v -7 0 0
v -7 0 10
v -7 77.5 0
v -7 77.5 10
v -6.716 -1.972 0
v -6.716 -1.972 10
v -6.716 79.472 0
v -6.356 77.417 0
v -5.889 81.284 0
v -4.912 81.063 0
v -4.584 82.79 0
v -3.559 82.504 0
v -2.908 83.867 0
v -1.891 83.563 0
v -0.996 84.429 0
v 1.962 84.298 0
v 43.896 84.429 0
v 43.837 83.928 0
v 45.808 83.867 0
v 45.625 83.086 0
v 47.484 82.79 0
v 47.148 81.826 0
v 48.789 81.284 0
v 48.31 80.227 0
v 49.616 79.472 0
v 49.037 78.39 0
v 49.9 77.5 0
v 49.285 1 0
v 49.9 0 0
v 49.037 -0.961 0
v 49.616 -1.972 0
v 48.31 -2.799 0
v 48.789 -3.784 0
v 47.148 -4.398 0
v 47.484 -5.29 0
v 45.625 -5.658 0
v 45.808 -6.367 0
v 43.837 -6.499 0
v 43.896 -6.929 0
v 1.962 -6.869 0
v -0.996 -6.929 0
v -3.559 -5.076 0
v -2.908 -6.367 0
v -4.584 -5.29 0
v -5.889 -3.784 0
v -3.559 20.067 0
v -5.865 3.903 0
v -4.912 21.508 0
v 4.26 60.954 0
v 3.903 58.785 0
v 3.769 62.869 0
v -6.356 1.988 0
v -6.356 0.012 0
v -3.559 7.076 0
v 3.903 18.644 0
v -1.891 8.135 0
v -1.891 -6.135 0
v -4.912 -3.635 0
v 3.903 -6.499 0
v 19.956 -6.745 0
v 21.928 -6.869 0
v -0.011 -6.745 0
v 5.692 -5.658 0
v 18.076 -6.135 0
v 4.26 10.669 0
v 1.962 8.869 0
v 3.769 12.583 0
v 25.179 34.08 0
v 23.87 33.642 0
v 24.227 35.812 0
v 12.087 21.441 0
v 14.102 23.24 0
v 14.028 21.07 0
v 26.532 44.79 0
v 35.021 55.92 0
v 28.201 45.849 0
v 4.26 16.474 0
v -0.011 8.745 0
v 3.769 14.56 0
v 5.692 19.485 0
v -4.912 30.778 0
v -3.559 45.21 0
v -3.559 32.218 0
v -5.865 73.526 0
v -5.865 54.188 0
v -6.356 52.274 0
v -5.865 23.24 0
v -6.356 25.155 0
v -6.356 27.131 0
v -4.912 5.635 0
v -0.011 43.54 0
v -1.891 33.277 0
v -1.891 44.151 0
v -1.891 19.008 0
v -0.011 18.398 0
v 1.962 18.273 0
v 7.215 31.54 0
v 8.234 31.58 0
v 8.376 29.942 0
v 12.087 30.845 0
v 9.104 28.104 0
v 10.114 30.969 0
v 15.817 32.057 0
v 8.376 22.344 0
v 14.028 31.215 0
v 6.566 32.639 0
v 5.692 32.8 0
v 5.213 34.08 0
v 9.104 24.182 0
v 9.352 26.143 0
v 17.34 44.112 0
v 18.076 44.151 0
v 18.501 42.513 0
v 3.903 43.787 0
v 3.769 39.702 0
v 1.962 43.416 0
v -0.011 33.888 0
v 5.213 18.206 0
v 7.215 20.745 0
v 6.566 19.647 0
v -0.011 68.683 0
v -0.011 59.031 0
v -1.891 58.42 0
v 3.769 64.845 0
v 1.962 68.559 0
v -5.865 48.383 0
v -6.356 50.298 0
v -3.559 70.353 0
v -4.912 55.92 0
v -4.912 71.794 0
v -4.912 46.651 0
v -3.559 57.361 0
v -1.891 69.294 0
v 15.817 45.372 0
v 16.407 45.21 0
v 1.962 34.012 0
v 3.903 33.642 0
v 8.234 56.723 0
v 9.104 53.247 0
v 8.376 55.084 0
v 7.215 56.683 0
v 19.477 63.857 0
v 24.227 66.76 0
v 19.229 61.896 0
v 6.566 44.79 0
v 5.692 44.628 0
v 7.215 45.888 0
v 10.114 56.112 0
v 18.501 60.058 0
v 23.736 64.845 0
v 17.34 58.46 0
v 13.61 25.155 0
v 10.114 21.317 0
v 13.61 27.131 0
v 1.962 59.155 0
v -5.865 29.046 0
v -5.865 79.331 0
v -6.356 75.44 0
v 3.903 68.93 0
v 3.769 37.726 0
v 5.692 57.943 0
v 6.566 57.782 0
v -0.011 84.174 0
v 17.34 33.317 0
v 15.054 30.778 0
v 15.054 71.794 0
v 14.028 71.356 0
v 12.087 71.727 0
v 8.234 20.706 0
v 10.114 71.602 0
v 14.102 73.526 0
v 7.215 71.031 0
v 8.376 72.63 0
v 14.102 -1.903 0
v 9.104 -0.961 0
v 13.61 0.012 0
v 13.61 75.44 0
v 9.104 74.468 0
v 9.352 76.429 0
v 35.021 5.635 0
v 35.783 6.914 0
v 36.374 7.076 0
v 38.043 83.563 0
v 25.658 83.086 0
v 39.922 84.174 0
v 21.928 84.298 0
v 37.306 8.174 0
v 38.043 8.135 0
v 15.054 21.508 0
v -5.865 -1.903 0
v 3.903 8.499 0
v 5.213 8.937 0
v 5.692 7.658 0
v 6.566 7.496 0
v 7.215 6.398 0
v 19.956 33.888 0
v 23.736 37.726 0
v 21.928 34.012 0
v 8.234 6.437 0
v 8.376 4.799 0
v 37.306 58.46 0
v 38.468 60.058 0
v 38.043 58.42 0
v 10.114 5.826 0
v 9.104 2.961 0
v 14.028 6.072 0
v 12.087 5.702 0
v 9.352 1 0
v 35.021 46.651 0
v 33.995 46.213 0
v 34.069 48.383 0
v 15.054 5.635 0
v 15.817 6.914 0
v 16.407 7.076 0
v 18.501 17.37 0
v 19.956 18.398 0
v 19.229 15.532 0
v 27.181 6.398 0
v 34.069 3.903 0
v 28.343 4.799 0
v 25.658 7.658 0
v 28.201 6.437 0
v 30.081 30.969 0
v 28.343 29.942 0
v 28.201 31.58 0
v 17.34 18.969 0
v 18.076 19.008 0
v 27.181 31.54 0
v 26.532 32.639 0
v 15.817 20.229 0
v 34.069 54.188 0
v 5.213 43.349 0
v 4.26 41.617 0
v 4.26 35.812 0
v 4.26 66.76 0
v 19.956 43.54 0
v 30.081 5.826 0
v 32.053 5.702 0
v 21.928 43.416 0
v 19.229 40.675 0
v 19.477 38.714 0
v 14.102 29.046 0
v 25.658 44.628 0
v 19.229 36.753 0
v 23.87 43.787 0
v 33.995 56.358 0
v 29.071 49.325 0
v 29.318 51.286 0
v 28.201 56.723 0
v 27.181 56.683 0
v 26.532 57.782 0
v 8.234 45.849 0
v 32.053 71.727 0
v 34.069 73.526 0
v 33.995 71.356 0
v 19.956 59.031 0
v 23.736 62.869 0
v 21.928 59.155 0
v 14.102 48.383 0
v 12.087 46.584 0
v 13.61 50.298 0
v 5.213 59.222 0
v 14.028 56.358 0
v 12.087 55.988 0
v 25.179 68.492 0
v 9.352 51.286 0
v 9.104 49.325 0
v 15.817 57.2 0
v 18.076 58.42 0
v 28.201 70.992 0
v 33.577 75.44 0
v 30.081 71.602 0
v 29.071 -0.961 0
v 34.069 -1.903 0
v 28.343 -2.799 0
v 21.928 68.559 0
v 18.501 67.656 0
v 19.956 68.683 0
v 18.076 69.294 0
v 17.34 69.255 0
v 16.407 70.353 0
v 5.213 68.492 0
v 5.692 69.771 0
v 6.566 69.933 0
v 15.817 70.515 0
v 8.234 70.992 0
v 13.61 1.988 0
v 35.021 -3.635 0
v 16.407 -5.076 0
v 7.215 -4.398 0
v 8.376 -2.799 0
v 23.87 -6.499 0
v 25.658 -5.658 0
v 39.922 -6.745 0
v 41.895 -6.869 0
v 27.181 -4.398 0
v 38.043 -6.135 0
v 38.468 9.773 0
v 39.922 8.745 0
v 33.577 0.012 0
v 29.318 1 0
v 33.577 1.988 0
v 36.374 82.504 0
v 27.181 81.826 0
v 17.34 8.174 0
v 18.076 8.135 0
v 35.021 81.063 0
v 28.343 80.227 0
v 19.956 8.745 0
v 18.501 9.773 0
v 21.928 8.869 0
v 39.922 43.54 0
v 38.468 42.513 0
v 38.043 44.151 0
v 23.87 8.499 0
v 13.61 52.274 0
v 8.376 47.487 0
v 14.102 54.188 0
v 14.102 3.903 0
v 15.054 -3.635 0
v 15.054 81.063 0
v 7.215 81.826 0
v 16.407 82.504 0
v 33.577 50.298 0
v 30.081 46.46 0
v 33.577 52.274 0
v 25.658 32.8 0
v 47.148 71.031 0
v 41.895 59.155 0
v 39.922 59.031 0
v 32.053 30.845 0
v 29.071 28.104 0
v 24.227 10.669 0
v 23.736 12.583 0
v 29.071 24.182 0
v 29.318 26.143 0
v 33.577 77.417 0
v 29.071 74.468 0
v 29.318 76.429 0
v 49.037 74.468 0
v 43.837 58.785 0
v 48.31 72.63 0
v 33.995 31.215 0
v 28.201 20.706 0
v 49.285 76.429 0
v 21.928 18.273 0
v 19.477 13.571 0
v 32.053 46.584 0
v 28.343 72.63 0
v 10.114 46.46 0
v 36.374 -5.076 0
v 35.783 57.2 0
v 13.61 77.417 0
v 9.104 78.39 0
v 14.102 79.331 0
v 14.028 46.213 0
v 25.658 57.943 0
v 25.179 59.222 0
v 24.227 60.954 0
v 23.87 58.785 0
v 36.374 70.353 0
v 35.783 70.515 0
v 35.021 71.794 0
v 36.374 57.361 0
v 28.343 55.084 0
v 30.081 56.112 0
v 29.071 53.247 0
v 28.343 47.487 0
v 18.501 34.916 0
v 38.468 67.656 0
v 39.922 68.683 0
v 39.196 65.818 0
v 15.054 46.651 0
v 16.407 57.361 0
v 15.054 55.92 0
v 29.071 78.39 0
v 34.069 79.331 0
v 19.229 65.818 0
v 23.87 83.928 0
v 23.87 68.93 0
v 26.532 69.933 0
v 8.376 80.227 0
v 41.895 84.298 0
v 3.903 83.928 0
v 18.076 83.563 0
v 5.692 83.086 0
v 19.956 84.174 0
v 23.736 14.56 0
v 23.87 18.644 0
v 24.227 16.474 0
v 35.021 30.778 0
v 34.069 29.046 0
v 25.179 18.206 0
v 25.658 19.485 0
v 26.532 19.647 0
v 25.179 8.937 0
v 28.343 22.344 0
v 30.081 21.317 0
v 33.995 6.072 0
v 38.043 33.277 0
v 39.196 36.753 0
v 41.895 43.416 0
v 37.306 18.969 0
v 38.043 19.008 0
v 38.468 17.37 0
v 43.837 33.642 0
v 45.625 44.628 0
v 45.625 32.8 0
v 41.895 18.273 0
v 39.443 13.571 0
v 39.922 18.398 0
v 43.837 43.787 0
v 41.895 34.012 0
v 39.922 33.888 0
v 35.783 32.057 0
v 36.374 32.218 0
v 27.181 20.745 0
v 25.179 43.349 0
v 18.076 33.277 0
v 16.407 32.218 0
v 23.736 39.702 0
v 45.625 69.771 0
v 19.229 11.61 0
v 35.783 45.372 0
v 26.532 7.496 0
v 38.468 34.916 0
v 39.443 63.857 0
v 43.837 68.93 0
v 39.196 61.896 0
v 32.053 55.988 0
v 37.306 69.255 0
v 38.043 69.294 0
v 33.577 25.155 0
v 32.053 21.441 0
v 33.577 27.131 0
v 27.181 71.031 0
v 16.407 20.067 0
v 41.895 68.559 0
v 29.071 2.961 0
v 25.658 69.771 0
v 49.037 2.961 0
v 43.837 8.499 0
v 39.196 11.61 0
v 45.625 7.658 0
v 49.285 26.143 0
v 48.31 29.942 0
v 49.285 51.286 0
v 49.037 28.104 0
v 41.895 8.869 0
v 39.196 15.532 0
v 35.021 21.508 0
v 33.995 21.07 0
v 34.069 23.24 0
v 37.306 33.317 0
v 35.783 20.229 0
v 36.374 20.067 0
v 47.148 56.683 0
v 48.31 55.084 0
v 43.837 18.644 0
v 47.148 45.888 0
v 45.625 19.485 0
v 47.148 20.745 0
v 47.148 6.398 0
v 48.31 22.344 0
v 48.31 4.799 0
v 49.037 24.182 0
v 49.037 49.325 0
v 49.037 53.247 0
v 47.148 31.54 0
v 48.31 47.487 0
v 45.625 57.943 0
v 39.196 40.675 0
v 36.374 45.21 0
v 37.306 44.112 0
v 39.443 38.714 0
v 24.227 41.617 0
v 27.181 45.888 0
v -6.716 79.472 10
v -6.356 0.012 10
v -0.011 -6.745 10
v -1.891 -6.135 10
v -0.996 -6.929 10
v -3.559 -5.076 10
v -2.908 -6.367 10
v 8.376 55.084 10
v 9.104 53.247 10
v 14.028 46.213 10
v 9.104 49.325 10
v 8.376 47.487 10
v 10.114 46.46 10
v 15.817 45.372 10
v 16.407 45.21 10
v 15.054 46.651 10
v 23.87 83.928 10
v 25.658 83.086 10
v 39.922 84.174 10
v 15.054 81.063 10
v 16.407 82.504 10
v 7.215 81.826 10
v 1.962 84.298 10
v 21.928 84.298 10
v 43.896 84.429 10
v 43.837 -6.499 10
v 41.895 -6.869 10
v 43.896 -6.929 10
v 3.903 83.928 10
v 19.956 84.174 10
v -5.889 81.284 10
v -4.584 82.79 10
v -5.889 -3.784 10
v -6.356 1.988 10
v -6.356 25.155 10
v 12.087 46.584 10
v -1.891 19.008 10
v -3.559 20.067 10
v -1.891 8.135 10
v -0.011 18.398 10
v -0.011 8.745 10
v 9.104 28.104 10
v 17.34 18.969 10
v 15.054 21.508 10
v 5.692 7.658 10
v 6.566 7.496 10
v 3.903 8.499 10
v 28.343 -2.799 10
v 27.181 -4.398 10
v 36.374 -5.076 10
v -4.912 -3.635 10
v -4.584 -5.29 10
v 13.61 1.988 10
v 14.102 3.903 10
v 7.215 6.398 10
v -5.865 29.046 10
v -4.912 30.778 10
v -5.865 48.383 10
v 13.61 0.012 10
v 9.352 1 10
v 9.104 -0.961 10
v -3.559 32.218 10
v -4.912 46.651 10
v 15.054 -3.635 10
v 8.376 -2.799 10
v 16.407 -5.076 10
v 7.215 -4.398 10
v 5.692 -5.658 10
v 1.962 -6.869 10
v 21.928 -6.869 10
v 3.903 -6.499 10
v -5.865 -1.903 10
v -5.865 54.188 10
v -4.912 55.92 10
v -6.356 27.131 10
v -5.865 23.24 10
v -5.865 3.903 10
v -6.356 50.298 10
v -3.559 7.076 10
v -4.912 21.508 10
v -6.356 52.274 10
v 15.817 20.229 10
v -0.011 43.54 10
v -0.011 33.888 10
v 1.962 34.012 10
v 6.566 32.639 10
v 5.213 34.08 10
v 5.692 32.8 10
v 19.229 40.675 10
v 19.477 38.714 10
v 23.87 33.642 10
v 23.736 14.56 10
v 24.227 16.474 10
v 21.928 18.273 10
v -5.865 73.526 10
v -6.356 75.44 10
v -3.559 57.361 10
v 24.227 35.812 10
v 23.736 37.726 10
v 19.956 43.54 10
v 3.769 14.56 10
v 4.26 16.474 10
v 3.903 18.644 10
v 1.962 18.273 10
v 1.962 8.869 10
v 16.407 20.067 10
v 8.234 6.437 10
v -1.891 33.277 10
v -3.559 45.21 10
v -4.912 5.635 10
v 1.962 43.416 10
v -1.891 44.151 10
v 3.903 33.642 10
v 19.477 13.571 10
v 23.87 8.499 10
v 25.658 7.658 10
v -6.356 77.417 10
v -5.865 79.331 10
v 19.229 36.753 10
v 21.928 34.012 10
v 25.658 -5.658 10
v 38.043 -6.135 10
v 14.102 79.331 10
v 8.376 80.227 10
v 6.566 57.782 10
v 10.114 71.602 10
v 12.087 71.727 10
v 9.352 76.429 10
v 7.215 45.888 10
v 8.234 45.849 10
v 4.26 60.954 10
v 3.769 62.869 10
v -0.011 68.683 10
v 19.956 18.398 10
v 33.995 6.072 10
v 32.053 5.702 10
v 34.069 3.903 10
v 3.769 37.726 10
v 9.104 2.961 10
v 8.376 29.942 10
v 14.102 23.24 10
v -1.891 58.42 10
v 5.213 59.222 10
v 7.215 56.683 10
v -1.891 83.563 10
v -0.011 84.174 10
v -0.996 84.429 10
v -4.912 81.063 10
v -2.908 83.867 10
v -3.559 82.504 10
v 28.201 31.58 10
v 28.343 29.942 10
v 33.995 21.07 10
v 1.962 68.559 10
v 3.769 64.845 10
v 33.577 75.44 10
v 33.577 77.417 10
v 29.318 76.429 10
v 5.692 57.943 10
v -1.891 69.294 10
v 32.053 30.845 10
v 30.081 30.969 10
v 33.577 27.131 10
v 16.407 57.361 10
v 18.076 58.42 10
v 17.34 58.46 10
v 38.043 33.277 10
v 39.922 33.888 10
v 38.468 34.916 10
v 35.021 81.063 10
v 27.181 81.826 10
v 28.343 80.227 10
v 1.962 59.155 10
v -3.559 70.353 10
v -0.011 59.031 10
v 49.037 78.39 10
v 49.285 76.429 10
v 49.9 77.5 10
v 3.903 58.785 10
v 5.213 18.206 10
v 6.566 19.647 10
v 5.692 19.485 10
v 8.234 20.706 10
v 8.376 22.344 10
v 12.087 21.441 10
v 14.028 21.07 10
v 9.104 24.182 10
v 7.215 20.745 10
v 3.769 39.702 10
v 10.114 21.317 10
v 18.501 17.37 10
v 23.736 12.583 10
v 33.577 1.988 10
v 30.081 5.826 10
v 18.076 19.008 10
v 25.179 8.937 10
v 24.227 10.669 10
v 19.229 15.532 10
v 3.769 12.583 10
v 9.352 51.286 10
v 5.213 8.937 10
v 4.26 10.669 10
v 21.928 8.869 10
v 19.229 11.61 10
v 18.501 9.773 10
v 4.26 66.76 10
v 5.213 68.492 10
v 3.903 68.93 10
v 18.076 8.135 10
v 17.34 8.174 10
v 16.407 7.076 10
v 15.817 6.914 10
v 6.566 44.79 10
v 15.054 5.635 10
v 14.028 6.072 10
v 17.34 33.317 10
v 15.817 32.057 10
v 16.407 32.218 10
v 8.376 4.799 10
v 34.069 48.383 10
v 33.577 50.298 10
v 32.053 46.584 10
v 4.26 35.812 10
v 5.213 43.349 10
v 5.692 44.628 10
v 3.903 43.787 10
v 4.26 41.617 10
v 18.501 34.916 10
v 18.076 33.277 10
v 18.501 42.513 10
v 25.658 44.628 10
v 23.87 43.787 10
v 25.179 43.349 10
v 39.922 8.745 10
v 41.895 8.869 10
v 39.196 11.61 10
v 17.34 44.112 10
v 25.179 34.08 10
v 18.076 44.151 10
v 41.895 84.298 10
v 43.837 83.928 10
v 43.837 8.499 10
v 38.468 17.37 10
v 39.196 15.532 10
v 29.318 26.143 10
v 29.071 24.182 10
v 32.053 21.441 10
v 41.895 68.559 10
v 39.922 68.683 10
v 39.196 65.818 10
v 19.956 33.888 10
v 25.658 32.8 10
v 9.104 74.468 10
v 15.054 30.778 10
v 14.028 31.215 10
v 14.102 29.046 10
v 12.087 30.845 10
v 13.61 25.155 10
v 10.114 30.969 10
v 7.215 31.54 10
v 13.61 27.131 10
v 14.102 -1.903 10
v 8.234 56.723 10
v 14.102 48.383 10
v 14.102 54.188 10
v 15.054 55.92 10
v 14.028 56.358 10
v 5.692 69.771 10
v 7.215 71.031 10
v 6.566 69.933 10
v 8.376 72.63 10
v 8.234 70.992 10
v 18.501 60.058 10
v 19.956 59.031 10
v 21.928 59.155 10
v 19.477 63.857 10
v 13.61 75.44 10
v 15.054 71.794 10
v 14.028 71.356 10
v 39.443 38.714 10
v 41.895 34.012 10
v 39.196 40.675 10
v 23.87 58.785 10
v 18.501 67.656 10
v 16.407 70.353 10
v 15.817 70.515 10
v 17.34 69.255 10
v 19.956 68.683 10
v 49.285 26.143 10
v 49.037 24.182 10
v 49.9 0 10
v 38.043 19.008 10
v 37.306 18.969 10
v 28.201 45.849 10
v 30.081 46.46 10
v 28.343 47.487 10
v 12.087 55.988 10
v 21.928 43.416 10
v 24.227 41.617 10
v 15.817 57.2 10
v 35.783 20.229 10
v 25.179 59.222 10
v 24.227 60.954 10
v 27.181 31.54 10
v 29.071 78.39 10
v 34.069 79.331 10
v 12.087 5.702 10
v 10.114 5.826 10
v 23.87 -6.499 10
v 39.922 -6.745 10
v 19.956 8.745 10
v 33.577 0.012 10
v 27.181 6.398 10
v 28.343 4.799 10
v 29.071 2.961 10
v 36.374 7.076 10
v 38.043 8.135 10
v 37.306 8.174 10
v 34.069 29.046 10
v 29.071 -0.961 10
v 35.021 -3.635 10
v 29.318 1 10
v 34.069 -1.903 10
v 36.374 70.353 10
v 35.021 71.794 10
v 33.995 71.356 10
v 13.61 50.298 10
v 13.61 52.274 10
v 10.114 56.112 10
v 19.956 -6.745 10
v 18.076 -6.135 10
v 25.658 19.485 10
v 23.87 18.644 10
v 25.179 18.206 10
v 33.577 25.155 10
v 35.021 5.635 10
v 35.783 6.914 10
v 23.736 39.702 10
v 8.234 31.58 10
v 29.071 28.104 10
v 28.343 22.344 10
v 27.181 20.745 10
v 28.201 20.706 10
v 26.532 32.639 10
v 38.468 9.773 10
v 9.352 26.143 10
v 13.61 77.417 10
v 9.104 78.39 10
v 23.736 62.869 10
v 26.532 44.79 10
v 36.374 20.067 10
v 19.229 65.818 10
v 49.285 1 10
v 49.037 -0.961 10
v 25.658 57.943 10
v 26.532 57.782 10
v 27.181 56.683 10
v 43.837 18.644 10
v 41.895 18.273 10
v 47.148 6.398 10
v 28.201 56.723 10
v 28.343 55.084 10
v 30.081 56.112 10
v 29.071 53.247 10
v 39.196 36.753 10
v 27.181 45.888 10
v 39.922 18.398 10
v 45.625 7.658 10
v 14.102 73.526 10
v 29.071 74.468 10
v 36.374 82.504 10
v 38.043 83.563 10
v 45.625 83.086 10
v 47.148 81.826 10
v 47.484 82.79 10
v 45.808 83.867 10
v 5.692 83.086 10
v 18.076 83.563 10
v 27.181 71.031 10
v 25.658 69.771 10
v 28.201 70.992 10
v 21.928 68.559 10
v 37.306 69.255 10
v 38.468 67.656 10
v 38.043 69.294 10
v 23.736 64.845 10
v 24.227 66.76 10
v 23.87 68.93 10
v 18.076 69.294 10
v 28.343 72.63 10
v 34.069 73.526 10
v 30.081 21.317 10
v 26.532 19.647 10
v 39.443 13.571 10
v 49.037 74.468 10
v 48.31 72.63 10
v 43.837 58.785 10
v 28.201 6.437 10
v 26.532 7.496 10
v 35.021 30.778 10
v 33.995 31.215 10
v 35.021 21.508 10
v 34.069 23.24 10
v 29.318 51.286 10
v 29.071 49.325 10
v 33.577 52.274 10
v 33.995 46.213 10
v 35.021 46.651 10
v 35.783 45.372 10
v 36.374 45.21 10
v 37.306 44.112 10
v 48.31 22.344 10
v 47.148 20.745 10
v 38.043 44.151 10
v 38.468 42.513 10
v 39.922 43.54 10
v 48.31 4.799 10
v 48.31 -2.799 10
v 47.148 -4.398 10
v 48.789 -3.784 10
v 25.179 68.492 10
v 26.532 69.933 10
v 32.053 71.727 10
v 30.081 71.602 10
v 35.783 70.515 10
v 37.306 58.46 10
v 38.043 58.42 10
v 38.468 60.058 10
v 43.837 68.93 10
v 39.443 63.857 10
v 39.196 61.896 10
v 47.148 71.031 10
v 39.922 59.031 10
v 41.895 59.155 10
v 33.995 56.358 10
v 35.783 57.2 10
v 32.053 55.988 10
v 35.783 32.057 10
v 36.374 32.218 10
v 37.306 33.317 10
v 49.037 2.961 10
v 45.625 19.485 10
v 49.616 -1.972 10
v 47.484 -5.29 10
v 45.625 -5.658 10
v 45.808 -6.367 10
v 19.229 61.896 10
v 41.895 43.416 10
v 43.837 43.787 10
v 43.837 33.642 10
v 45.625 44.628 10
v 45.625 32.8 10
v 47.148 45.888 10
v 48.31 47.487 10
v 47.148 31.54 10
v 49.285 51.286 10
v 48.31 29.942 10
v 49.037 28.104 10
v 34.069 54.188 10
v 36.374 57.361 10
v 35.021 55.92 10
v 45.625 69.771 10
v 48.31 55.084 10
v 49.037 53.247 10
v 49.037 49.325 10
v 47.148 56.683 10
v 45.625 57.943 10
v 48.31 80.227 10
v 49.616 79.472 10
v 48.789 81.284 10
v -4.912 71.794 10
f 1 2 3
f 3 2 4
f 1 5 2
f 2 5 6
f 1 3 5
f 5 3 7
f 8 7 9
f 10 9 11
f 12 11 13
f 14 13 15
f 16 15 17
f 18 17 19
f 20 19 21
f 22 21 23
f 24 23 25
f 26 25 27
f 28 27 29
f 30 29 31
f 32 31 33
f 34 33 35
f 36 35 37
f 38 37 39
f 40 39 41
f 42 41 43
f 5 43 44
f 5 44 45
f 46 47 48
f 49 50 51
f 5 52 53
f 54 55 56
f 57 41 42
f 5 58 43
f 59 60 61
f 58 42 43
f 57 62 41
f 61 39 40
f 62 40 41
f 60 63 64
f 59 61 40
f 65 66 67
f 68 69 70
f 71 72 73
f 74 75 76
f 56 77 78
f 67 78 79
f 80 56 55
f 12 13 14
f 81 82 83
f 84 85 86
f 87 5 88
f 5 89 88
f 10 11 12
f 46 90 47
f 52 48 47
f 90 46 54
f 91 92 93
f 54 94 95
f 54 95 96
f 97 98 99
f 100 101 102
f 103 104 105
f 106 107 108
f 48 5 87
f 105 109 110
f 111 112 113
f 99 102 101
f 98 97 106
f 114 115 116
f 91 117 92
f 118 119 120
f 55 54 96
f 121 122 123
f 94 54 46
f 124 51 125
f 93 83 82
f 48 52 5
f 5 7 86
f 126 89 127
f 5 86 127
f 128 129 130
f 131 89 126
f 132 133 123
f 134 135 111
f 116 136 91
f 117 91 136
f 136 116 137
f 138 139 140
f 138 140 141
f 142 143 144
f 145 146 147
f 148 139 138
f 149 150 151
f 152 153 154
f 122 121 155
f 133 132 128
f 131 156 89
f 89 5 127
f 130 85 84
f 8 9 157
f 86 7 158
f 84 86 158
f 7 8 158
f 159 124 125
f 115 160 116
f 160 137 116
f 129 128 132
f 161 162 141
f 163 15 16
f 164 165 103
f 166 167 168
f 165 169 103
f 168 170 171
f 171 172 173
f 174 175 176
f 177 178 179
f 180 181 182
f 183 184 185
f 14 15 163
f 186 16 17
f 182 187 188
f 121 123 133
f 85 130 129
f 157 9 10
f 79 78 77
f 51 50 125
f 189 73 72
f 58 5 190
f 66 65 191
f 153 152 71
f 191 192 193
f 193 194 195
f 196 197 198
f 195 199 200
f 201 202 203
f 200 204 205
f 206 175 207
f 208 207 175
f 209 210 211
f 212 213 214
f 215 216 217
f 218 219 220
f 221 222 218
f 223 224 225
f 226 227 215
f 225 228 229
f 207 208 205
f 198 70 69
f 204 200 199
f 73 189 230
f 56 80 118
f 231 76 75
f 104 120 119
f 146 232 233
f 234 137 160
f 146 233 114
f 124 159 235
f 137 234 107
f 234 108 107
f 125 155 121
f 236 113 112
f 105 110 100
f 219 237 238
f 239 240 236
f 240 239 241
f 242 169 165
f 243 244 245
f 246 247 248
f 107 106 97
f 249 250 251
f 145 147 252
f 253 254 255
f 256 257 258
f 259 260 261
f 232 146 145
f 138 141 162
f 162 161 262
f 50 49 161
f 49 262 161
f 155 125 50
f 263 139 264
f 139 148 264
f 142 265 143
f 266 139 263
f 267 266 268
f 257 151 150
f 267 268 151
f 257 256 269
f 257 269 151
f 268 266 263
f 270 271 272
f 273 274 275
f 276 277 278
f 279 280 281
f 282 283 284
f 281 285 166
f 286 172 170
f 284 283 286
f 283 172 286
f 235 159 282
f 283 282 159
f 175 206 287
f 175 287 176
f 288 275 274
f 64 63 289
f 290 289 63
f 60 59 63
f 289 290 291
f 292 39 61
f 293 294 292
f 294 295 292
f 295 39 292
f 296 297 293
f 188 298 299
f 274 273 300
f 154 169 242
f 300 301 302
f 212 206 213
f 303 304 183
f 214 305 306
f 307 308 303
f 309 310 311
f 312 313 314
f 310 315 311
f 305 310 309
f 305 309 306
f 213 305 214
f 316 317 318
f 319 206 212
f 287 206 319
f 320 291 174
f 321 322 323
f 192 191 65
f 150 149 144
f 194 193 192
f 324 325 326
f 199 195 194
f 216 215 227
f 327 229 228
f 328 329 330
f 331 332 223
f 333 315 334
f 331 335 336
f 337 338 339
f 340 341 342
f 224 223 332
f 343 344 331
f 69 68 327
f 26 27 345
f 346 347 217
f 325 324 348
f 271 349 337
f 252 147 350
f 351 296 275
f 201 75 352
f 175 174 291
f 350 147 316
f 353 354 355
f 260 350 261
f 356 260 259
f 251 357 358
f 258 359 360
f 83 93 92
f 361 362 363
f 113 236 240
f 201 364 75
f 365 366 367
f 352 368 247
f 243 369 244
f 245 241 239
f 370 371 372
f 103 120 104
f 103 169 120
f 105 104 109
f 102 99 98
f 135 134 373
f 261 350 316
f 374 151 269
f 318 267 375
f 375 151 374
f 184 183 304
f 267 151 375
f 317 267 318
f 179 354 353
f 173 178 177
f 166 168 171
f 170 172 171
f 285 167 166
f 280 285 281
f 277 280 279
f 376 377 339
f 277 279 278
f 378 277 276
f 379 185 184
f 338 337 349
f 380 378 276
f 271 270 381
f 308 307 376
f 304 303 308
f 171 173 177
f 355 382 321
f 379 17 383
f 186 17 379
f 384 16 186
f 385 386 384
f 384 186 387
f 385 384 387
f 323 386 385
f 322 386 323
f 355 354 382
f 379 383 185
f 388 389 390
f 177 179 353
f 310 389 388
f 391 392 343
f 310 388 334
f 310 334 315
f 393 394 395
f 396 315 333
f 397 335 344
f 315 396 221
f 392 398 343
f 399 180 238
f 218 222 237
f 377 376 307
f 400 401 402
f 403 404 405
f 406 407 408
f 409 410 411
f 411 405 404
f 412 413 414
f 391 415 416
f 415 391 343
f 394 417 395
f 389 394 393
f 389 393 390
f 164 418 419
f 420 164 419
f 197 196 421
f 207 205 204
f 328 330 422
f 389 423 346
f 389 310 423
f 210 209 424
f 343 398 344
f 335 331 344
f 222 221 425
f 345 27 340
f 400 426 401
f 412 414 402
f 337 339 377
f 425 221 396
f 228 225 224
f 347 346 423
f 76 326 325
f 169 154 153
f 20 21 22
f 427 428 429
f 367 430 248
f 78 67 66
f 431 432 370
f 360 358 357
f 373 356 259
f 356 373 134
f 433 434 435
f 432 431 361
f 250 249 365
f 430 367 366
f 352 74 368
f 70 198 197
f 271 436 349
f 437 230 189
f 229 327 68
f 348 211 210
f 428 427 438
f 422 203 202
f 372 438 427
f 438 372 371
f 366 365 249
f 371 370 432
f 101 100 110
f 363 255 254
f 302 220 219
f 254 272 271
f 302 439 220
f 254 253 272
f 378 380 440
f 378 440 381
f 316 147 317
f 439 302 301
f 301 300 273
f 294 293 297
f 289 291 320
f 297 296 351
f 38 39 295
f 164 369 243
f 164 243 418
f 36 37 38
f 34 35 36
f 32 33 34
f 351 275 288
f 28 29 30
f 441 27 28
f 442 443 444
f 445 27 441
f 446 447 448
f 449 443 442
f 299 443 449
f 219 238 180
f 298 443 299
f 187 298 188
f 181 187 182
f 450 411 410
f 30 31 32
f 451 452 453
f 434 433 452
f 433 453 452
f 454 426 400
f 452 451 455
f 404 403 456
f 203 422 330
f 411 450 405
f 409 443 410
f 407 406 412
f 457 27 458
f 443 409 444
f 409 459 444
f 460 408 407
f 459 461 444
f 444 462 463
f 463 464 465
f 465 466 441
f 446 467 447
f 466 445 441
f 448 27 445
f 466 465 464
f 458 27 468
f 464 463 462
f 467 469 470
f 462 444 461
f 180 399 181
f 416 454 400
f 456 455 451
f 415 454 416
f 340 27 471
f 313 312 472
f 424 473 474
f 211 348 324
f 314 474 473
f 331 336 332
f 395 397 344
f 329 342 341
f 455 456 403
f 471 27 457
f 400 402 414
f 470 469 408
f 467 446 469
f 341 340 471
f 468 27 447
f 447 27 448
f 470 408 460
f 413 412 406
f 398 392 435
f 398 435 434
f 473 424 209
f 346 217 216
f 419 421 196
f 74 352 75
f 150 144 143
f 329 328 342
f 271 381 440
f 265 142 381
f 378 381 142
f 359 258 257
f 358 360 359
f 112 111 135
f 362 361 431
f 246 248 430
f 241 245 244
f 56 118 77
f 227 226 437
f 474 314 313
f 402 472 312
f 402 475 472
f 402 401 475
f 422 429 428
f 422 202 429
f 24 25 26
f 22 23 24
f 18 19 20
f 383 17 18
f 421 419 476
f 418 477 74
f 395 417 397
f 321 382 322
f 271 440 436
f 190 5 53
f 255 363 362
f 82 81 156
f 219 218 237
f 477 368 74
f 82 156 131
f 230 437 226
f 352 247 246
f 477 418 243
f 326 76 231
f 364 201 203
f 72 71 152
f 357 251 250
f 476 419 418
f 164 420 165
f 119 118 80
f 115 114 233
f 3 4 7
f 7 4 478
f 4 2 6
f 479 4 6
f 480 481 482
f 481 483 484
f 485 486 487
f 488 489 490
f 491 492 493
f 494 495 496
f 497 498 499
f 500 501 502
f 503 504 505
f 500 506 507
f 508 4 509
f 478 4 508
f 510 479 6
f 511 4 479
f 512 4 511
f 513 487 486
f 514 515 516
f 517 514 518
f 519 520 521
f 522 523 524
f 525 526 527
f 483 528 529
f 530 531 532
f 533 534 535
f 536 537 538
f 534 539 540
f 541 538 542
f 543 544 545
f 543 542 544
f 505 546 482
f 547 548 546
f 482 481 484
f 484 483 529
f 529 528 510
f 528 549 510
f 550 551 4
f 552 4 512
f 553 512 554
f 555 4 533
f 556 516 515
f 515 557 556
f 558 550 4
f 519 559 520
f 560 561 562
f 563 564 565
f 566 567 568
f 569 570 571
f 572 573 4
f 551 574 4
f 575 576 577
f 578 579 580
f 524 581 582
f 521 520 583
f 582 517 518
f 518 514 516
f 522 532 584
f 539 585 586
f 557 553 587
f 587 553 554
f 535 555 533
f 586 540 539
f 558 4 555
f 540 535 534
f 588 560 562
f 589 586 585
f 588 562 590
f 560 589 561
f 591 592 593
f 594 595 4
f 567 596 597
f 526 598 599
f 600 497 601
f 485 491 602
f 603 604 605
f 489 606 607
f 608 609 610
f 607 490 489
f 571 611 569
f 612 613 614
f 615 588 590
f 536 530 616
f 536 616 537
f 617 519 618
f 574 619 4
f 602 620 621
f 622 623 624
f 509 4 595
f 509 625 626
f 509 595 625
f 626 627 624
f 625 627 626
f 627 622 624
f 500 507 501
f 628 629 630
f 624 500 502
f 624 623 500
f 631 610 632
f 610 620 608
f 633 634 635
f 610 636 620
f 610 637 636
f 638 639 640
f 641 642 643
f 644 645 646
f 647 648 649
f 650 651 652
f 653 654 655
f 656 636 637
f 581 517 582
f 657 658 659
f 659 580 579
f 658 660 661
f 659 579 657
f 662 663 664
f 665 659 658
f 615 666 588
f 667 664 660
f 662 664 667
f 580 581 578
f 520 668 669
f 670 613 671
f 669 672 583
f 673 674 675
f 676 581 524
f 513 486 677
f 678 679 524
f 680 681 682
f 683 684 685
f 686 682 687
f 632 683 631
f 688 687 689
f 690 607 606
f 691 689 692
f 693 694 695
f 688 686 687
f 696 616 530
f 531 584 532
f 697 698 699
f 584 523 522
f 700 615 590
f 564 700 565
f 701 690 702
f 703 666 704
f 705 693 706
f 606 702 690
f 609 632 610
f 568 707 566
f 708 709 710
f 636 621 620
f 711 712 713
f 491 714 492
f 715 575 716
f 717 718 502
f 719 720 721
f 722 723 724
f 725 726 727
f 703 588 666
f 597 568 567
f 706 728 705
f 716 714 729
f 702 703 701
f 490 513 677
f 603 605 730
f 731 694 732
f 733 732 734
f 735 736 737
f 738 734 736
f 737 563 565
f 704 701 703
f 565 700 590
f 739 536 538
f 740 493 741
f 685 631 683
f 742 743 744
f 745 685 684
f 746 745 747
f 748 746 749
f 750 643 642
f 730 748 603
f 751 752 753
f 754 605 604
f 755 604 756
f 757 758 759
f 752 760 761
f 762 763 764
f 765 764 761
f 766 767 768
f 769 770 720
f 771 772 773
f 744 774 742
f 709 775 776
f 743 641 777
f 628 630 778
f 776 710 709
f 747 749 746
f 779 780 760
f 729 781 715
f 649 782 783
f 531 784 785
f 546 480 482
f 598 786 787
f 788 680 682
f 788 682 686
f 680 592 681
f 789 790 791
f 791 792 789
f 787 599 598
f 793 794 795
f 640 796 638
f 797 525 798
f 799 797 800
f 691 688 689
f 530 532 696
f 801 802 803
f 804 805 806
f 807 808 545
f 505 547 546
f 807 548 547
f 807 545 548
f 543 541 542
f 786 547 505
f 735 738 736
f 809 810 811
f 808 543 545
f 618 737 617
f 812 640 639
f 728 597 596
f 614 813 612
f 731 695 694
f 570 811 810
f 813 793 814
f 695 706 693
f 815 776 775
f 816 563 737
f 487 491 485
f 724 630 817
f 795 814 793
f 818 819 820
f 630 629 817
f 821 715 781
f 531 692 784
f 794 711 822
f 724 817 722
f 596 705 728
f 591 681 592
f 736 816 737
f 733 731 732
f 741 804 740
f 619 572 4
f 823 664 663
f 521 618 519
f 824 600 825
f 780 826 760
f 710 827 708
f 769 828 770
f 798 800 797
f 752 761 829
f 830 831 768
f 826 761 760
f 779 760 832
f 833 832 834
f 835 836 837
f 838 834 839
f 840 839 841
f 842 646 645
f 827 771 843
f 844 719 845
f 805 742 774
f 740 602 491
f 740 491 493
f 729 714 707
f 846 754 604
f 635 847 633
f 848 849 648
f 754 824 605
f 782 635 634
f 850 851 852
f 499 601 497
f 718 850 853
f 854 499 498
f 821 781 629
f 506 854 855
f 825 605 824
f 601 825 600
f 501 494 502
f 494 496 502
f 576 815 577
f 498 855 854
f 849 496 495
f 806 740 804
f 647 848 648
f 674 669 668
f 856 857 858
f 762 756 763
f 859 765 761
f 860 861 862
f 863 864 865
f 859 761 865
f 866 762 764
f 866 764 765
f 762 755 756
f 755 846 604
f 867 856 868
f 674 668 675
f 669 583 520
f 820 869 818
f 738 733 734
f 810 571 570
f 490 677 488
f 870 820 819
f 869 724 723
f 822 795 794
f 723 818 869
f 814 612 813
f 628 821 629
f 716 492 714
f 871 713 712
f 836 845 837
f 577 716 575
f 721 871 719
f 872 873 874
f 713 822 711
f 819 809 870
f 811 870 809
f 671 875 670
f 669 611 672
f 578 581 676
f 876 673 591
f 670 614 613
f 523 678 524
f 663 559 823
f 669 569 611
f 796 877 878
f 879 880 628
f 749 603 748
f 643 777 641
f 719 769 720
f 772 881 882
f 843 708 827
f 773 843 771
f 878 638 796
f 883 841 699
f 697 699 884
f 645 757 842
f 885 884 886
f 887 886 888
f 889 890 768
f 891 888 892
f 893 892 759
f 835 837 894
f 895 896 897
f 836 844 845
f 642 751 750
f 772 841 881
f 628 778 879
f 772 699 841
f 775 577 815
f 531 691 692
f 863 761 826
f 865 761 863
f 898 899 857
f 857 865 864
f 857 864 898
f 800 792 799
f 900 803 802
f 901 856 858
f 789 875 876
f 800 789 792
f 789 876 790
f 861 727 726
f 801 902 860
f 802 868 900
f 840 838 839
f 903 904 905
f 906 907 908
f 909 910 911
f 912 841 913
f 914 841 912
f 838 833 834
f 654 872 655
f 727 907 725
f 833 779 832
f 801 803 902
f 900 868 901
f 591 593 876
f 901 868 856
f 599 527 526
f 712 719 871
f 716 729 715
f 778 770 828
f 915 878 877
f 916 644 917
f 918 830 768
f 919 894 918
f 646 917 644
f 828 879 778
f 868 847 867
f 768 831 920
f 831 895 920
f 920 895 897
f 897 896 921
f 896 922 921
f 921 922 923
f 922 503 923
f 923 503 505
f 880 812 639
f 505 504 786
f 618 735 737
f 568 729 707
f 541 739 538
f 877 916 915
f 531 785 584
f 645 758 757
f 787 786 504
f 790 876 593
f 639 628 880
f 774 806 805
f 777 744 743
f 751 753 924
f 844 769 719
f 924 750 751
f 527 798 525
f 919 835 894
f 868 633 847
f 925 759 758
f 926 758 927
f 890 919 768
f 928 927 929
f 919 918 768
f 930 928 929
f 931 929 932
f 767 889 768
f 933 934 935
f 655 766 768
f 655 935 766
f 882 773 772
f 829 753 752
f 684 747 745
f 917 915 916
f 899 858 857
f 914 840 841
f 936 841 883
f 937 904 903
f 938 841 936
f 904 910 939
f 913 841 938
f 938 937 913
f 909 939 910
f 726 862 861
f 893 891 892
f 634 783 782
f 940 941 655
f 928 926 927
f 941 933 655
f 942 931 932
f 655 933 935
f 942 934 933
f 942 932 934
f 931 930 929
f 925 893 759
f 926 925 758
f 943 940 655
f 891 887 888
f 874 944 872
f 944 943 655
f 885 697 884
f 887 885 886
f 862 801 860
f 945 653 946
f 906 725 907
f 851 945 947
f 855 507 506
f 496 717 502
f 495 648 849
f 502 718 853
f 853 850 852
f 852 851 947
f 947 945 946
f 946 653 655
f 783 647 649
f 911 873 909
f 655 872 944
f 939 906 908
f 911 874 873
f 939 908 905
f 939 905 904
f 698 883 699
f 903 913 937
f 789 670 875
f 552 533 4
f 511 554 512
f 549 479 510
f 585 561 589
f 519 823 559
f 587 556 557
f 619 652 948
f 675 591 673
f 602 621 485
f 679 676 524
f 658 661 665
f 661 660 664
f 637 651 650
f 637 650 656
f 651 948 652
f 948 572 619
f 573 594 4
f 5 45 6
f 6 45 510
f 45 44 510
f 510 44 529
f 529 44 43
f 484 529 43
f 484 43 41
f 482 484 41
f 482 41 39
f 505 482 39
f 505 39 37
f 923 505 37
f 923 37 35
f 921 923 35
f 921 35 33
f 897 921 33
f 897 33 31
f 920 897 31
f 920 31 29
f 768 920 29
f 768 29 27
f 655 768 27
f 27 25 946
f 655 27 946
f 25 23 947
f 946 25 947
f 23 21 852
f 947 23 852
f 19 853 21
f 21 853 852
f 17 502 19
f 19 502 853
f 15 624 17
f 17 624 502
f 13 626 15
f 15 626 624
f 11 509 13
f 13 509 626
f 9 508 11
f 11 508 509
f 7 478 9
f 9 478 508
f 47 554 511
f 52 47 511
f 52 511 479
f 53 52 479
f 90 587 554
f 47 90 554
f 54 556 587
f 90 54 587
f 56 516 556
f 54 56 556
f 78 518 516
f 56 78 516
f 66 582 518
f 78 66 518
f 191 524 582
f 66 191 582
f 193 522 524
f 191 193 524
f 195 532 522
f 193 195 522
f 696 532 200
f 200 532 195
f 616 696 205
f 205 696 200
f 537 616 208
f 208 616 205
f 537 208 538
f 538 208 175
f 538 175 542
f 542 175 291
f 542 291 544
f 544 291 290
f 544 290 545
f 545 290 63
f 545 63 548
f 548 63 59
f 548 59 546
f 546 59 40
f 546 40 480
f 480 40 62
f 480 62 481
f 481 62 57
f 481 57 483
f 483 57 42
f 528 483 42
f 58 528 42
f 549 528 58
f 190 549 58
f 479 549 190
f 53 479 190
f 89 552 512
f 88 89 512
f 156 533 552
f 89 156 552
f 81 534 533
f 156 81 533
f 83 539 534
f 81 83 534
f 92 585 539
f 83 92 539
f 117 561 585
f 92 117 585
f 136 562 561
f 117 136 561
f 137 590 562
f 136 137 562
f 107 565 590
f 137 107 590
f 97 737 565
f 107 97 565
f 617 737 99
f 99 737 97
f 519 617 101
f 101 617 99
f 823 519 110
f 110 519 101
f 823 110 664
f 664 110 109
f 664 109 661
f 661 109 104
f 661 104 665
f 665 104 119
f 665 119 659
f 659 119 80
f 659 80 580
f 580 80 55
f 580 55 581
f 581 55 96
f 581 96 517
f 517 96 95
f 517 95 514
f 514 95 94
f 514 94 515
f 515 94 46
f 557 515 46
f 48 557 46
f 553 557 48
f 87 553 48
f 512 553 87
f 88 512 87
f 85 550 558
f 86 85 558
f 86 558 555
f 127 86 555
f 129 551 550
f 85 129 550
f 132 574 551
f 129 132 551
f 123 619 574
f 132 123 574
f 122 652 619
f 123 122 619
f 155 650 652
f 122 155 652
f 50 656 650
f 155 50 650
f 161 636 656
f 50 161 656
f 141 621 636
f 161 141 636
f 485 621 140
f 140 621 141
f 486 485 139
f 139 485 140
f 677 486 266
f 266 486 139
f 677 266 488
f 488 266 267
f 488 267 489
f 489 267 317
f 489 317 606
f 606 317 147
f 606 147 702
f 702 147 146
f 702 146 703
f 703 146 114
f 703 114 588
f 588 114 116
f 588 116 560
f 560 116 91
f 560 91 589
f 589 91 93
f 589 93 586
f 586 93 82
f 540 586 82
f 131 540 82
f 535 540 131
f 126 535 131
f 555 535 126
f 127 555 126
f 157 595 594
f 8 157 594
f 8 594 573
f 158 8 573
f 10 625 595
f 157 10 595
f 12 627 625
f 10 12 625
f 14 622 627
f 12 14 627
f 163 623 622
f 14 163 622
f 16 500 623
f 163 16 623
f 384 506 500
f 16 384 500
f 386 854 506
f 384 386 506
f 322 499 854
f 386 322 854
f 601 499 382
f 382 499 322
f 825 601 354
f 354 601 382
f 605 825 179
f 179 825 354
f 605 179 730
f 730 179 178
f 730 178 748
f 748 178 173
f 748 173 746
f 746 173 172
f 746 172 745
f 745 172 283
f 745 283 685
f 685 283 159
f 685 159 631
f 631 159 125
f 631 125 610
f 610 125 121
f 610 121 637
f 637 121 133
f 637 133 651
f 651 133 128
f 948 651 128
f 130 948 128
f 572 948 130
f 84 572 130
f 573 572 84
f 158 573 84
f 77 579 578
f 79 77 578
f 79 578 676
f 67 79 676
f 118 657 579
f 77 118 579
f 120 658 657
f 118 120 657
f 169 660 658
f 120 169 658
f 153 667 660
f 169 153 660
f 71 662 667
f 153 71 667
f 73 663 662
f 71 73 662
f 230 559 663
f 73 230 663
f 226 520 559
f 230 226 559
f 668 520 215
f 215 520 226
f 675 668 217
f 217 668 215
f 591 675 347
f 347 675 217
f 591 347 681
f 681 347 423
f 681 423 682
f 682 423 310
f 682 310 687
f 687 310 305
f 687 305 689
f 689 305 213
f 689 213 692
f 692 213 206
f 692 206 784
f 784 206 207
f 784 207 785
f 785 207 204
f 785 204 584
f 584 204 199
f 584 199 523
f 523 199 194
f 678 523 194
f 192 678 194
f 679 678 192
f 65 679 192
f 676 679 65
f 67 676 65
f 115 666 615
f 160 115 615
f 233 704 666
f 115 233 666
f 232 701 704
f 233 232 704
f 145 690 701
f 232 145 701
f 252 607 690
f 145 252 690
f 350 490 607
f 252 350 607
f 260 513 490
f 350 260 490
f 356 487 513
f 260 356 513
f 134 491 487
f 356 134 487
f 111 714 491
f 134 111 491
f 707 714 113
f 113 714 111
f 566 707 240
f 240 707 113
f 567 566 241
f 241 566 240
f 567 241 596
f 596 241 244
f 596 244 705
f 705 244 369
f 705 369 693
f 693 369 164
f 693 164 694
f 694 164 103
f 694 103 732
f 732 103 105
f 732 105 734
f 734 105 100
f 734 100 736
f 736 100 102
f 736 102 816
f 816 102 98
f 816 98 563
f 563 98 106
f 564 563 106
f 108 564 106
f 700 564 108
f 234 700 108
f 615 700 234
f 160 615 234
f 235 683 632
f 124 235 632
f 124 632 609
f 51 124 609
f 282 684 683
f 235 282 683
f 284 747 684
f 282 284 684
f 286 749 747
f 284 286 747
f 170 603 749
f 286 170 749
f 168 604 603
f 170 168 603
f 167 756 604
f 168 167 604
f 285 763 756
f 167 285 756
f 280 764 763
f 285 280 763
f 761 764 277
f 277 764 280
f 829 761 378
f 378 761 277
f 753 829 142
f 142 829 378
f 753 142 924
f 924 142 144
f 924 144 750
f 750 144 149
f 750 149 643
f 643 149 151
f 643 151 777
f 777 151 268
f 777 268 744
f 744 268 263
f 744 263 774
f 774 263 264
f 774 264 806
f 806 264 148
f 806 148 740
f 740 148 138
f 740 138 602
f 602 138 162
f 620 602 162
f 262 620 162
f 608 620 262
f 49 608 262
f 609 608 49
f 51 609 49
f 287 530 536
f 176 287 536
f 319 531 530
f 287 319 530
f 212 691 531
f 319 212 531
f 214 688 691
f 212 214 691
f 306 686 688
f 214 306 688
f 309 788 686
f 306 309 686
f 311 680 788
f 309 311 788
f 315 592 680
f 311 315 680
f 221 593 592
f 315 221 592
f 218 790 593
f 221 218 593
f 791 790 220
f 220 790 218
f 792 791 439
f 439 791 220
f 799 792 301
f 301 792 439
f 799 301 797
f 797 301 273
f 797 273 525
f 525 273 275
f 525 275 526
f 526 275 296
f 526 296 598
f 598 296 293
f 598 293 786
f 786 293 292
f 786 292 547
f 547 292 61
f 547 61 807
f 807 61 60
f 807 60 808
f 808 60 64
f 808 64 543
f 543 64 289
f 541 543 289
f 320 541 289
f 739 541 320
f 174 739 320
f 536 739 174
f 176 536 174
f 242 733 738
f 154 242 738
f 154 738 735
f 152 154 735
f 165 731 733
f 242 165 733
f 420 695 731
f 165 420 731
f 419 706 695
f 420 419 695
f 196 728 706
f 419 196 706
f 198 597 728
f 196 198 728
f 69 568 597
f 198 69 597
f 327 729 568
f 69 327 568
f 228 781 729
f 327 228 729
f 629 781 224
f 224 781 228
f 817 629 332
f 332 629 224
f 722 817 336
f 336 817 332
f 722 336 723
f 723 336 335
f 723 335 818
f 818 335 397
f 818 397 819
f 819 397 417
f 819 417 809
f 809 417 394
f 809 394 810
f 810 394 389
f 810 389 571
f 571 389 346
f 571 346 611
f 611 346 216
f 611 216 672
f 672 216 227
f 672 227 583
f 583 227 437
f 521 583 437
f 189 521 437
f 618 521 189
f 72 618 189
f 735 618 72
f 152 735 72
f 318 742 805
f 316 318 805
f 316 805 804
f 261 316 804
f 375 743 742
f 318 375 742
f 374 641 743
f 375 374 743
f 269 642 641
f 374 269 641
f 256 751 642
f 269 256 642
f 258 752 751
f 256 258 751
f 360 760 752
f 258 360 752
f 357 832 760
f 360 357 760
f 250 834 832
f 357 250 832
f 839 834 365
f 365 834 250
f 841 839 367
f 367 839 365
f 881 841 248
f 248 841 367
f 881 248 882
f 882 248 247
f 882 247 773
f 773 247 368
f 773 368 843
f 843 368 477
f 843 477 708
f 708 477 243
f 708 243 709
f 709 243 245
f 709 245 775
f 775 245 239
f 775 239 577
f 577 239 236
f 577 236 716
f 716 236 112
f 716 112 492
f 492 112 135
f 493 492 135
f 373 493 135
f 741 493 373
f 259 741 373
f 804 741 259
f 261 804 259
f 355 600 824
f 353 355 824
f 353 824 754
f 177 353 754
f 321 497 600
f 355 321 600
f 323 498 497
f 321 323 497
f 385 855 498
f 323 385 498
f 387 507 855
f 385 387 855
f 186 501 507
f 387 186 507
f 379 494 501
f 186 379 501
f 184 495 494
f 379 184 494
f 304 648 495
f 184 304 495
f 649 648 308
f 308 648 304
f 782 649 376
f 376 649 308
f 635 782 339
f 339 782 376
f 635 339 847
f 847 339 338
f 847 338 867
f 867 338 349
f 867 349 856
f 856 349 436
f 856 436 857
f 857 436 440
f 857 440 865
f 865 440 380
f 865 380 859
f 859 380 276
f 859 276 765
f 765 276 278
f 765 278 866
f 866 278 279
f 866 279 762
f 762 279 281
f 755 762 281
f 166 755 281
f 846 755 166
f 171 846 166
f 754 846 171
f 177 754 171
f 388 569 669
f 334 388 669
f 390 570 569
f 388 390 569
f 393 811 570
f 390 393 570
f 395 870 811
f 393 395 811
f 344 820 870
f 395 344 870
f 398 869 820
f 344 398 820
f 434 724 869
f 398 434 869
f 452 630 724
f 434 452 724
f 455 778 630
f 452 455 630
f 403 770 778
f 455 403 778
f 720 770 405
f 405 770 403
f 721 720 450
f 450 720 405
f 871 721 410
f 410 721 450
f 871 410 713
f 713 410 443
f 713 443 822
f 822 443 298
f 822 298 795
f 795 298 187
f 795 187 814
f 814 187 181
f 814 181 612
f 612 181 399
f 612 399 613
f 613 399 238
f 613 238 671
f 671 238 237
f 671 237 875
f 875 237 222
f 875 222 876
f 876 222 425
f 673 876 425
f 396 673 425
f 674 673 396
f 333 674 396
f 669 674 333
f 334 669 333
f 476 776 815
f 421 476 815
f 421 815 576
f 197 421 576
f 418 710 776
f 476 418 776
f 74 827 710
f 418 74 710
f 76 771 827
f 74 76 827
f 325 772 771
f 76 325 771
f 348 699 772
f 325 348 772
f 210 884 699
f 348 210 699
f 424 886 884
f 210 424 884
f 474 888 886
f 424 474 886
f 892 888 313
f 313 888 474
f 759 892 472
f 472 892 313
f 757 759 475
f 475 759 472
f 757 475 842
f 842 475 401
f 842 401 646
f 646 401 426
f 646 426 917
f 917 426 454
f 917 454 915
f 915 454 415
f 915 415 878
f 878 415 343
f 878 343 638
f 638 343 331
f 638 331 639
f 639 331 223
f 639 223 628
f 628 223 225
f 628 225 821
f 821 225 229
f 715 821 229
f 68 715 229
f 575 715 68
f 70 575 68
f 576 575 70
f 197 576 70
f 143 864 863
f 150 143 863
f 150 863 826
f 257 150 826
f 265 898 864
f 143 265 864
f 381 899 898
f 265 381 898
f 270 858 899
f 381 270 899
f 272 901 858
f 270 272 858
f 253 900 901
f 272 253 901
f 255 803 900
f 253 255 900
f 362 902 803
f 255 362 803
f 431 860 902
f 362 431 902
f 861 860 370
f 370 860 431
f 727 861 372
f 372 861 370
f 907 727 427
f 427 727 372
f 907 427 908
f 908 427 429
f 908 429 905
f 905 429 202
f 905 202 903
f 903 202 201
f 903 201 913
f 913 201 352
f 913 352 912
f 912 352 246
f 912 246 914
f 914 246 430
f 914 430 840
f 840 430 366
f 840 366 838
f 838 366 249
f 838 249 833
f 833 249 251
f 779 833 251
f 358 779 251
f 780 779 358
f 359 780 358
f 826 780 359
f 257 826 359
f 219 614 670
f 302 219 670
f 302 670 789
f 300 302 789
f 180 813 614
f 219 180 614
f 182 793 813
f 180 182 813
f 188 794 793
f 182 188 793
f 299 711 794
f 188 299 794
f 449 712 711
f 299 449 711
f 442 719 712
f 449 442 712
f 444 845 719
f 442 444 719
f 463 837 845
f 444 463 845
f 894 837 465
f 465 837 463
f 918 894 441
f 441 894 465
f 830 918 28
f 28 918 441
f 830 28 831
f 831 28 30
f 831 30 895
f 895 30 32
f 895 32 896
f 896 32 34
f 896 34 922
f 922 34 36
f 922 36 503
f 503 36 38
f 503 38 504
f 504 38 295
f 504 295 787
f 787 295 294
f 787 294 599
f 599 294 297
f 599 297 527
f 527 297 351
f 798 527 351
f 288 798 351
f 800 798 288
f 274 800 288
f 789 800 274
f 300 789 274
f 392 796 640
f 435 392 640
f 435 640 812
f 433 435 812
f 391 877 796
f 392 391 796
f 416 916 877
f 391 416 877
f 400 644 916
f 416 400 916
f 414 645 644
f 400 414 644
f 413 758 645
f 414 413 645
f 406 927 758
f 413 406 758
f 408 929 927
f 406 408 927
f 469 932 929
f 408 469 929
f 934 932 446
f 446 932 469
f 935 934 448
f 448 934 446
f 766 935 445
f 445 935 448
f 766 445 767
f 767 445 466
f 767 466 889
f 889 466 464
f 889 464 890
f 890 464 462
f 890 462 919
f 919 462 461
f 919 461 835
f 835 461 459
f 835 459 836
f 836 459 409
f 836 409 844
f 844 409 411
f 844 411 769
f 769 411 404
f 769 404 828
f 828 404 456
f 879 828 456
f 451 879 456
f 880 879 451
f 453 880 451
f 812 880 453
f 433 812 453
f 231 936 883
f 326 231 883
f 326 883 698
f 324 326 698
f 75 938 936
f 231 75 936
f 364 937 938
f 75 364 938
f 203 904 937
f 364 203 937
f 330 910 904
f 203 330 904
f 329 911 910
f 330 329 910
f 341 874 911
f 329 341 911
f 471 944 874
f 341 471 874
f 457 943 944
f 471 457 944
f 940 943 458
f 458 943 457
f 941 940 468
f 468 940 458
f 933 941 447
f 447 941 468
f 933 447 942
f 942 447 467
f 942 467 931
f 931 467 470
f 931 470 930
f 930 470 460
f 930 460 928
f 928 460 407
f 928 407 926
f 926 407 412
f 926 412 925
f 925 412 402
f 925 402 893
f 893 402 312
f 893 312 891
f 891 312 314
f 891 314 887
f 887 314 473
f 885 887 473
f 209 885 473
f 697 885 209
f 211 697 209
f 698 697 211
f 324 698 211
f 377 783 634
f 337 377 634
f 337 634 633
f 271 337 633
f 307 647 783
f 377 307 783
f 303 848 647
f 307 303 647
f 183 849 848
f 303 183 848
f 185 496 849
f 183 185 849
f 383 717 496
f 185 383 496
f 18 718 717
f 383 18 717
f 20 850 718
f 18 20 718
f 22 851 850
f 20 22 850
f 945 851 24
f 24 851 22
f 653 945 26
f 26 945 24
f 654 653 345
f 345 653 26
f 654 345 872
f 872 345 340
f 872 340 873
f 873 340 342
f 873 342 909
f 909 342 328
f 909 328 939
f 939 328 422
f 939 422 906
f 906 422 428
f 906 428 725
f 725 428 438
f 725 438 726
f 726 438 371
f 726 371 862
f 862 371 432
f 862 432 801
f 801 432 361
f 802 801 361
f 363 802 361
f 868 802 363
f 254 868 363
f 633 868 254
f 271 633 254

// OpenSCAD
/*
Mint tin dimensions:
Top lid outer (not lip): 2.36" (59.9mm) x 3.75"(95mm)
Tin bottom: 2.3" (58.75mm) x 3.7"(93.9mm)
Inner: 2.24" (56.9mm) x 3.6"(91.5mm)
Height bottom section: 0.83" (21.28mm)
Height top section: "0.36 (9.26mm)
Corner radius .55" (14mm)
*/





bottleheight = 10; // 13.5
bottlewidth  = 15.75;
tolerance = .01;

singlethreadthickness = .45; // this is so we can have a single layer between the bottles
wallthickness = .9; // how thick we want the walls.
bottomthickness = -0.1; // how thick we want the floor.


threeshift = -bottlewidth -2.75;
twoshift = -(bottlewidth +1 )/2;
insidelength = 88.0/7; // 91.5/7;

% translate([-7,-7,0]) cube([56.9, 91.5, bottleheight]);

difference()
{
hull()
{
	cylinder(h=bottleheight , r=(14/2) );
	translate ([56.9 - 14, 0, 0]) cylinder(h=bottleheight , r=(14/2));
	translate ([56.9 - 14, 91.5 - 14, 0]) cylinder(h=bottleheight , r=(14/2) );
	translate ([0, 91.5 -14, 0]) cylinder(h=bottleheight , r=(14/2) );
}

translate ([ threeshift , 0*(insidelength) + 1, 0]) bottlespace(3, bottleheight, 0 );
translate ([twoshift, 1*(insidelength) + 1, 0]) bottlespace(2, bottleheight, 0 );
translate ([threeshift, 2*(insidelength) + 1, 0]) bottlespace(3, bottleheight, 0 );
translate ([twoshift, 3*(insidelength) + 1, 0]) bottlespace(2, bottleheight, 0 );
translate ([threeshift, 4*(insidelength) + 1, 0]) bottlespace(3, bottleheight, 0 );
translate ([twoshift, 5*(insidelength) + 1, 0]) bottlespace(2, bottleheight, 0 );
translate ([threeshift, 6*(insidelength) + 1, 0]) bottlespace(3, bottleheight, 0 );

}



module bottlespace(bottlecount, height, offset = 0)
{

	for (i = [1:bottlecount]) {
		translate([i * ( (56.9 + 3) / 3 ), offset, bottomthickness ])
			cylinder(h=height + 1 , r=(bottlewidth/2) + tolerance);
	}

}
